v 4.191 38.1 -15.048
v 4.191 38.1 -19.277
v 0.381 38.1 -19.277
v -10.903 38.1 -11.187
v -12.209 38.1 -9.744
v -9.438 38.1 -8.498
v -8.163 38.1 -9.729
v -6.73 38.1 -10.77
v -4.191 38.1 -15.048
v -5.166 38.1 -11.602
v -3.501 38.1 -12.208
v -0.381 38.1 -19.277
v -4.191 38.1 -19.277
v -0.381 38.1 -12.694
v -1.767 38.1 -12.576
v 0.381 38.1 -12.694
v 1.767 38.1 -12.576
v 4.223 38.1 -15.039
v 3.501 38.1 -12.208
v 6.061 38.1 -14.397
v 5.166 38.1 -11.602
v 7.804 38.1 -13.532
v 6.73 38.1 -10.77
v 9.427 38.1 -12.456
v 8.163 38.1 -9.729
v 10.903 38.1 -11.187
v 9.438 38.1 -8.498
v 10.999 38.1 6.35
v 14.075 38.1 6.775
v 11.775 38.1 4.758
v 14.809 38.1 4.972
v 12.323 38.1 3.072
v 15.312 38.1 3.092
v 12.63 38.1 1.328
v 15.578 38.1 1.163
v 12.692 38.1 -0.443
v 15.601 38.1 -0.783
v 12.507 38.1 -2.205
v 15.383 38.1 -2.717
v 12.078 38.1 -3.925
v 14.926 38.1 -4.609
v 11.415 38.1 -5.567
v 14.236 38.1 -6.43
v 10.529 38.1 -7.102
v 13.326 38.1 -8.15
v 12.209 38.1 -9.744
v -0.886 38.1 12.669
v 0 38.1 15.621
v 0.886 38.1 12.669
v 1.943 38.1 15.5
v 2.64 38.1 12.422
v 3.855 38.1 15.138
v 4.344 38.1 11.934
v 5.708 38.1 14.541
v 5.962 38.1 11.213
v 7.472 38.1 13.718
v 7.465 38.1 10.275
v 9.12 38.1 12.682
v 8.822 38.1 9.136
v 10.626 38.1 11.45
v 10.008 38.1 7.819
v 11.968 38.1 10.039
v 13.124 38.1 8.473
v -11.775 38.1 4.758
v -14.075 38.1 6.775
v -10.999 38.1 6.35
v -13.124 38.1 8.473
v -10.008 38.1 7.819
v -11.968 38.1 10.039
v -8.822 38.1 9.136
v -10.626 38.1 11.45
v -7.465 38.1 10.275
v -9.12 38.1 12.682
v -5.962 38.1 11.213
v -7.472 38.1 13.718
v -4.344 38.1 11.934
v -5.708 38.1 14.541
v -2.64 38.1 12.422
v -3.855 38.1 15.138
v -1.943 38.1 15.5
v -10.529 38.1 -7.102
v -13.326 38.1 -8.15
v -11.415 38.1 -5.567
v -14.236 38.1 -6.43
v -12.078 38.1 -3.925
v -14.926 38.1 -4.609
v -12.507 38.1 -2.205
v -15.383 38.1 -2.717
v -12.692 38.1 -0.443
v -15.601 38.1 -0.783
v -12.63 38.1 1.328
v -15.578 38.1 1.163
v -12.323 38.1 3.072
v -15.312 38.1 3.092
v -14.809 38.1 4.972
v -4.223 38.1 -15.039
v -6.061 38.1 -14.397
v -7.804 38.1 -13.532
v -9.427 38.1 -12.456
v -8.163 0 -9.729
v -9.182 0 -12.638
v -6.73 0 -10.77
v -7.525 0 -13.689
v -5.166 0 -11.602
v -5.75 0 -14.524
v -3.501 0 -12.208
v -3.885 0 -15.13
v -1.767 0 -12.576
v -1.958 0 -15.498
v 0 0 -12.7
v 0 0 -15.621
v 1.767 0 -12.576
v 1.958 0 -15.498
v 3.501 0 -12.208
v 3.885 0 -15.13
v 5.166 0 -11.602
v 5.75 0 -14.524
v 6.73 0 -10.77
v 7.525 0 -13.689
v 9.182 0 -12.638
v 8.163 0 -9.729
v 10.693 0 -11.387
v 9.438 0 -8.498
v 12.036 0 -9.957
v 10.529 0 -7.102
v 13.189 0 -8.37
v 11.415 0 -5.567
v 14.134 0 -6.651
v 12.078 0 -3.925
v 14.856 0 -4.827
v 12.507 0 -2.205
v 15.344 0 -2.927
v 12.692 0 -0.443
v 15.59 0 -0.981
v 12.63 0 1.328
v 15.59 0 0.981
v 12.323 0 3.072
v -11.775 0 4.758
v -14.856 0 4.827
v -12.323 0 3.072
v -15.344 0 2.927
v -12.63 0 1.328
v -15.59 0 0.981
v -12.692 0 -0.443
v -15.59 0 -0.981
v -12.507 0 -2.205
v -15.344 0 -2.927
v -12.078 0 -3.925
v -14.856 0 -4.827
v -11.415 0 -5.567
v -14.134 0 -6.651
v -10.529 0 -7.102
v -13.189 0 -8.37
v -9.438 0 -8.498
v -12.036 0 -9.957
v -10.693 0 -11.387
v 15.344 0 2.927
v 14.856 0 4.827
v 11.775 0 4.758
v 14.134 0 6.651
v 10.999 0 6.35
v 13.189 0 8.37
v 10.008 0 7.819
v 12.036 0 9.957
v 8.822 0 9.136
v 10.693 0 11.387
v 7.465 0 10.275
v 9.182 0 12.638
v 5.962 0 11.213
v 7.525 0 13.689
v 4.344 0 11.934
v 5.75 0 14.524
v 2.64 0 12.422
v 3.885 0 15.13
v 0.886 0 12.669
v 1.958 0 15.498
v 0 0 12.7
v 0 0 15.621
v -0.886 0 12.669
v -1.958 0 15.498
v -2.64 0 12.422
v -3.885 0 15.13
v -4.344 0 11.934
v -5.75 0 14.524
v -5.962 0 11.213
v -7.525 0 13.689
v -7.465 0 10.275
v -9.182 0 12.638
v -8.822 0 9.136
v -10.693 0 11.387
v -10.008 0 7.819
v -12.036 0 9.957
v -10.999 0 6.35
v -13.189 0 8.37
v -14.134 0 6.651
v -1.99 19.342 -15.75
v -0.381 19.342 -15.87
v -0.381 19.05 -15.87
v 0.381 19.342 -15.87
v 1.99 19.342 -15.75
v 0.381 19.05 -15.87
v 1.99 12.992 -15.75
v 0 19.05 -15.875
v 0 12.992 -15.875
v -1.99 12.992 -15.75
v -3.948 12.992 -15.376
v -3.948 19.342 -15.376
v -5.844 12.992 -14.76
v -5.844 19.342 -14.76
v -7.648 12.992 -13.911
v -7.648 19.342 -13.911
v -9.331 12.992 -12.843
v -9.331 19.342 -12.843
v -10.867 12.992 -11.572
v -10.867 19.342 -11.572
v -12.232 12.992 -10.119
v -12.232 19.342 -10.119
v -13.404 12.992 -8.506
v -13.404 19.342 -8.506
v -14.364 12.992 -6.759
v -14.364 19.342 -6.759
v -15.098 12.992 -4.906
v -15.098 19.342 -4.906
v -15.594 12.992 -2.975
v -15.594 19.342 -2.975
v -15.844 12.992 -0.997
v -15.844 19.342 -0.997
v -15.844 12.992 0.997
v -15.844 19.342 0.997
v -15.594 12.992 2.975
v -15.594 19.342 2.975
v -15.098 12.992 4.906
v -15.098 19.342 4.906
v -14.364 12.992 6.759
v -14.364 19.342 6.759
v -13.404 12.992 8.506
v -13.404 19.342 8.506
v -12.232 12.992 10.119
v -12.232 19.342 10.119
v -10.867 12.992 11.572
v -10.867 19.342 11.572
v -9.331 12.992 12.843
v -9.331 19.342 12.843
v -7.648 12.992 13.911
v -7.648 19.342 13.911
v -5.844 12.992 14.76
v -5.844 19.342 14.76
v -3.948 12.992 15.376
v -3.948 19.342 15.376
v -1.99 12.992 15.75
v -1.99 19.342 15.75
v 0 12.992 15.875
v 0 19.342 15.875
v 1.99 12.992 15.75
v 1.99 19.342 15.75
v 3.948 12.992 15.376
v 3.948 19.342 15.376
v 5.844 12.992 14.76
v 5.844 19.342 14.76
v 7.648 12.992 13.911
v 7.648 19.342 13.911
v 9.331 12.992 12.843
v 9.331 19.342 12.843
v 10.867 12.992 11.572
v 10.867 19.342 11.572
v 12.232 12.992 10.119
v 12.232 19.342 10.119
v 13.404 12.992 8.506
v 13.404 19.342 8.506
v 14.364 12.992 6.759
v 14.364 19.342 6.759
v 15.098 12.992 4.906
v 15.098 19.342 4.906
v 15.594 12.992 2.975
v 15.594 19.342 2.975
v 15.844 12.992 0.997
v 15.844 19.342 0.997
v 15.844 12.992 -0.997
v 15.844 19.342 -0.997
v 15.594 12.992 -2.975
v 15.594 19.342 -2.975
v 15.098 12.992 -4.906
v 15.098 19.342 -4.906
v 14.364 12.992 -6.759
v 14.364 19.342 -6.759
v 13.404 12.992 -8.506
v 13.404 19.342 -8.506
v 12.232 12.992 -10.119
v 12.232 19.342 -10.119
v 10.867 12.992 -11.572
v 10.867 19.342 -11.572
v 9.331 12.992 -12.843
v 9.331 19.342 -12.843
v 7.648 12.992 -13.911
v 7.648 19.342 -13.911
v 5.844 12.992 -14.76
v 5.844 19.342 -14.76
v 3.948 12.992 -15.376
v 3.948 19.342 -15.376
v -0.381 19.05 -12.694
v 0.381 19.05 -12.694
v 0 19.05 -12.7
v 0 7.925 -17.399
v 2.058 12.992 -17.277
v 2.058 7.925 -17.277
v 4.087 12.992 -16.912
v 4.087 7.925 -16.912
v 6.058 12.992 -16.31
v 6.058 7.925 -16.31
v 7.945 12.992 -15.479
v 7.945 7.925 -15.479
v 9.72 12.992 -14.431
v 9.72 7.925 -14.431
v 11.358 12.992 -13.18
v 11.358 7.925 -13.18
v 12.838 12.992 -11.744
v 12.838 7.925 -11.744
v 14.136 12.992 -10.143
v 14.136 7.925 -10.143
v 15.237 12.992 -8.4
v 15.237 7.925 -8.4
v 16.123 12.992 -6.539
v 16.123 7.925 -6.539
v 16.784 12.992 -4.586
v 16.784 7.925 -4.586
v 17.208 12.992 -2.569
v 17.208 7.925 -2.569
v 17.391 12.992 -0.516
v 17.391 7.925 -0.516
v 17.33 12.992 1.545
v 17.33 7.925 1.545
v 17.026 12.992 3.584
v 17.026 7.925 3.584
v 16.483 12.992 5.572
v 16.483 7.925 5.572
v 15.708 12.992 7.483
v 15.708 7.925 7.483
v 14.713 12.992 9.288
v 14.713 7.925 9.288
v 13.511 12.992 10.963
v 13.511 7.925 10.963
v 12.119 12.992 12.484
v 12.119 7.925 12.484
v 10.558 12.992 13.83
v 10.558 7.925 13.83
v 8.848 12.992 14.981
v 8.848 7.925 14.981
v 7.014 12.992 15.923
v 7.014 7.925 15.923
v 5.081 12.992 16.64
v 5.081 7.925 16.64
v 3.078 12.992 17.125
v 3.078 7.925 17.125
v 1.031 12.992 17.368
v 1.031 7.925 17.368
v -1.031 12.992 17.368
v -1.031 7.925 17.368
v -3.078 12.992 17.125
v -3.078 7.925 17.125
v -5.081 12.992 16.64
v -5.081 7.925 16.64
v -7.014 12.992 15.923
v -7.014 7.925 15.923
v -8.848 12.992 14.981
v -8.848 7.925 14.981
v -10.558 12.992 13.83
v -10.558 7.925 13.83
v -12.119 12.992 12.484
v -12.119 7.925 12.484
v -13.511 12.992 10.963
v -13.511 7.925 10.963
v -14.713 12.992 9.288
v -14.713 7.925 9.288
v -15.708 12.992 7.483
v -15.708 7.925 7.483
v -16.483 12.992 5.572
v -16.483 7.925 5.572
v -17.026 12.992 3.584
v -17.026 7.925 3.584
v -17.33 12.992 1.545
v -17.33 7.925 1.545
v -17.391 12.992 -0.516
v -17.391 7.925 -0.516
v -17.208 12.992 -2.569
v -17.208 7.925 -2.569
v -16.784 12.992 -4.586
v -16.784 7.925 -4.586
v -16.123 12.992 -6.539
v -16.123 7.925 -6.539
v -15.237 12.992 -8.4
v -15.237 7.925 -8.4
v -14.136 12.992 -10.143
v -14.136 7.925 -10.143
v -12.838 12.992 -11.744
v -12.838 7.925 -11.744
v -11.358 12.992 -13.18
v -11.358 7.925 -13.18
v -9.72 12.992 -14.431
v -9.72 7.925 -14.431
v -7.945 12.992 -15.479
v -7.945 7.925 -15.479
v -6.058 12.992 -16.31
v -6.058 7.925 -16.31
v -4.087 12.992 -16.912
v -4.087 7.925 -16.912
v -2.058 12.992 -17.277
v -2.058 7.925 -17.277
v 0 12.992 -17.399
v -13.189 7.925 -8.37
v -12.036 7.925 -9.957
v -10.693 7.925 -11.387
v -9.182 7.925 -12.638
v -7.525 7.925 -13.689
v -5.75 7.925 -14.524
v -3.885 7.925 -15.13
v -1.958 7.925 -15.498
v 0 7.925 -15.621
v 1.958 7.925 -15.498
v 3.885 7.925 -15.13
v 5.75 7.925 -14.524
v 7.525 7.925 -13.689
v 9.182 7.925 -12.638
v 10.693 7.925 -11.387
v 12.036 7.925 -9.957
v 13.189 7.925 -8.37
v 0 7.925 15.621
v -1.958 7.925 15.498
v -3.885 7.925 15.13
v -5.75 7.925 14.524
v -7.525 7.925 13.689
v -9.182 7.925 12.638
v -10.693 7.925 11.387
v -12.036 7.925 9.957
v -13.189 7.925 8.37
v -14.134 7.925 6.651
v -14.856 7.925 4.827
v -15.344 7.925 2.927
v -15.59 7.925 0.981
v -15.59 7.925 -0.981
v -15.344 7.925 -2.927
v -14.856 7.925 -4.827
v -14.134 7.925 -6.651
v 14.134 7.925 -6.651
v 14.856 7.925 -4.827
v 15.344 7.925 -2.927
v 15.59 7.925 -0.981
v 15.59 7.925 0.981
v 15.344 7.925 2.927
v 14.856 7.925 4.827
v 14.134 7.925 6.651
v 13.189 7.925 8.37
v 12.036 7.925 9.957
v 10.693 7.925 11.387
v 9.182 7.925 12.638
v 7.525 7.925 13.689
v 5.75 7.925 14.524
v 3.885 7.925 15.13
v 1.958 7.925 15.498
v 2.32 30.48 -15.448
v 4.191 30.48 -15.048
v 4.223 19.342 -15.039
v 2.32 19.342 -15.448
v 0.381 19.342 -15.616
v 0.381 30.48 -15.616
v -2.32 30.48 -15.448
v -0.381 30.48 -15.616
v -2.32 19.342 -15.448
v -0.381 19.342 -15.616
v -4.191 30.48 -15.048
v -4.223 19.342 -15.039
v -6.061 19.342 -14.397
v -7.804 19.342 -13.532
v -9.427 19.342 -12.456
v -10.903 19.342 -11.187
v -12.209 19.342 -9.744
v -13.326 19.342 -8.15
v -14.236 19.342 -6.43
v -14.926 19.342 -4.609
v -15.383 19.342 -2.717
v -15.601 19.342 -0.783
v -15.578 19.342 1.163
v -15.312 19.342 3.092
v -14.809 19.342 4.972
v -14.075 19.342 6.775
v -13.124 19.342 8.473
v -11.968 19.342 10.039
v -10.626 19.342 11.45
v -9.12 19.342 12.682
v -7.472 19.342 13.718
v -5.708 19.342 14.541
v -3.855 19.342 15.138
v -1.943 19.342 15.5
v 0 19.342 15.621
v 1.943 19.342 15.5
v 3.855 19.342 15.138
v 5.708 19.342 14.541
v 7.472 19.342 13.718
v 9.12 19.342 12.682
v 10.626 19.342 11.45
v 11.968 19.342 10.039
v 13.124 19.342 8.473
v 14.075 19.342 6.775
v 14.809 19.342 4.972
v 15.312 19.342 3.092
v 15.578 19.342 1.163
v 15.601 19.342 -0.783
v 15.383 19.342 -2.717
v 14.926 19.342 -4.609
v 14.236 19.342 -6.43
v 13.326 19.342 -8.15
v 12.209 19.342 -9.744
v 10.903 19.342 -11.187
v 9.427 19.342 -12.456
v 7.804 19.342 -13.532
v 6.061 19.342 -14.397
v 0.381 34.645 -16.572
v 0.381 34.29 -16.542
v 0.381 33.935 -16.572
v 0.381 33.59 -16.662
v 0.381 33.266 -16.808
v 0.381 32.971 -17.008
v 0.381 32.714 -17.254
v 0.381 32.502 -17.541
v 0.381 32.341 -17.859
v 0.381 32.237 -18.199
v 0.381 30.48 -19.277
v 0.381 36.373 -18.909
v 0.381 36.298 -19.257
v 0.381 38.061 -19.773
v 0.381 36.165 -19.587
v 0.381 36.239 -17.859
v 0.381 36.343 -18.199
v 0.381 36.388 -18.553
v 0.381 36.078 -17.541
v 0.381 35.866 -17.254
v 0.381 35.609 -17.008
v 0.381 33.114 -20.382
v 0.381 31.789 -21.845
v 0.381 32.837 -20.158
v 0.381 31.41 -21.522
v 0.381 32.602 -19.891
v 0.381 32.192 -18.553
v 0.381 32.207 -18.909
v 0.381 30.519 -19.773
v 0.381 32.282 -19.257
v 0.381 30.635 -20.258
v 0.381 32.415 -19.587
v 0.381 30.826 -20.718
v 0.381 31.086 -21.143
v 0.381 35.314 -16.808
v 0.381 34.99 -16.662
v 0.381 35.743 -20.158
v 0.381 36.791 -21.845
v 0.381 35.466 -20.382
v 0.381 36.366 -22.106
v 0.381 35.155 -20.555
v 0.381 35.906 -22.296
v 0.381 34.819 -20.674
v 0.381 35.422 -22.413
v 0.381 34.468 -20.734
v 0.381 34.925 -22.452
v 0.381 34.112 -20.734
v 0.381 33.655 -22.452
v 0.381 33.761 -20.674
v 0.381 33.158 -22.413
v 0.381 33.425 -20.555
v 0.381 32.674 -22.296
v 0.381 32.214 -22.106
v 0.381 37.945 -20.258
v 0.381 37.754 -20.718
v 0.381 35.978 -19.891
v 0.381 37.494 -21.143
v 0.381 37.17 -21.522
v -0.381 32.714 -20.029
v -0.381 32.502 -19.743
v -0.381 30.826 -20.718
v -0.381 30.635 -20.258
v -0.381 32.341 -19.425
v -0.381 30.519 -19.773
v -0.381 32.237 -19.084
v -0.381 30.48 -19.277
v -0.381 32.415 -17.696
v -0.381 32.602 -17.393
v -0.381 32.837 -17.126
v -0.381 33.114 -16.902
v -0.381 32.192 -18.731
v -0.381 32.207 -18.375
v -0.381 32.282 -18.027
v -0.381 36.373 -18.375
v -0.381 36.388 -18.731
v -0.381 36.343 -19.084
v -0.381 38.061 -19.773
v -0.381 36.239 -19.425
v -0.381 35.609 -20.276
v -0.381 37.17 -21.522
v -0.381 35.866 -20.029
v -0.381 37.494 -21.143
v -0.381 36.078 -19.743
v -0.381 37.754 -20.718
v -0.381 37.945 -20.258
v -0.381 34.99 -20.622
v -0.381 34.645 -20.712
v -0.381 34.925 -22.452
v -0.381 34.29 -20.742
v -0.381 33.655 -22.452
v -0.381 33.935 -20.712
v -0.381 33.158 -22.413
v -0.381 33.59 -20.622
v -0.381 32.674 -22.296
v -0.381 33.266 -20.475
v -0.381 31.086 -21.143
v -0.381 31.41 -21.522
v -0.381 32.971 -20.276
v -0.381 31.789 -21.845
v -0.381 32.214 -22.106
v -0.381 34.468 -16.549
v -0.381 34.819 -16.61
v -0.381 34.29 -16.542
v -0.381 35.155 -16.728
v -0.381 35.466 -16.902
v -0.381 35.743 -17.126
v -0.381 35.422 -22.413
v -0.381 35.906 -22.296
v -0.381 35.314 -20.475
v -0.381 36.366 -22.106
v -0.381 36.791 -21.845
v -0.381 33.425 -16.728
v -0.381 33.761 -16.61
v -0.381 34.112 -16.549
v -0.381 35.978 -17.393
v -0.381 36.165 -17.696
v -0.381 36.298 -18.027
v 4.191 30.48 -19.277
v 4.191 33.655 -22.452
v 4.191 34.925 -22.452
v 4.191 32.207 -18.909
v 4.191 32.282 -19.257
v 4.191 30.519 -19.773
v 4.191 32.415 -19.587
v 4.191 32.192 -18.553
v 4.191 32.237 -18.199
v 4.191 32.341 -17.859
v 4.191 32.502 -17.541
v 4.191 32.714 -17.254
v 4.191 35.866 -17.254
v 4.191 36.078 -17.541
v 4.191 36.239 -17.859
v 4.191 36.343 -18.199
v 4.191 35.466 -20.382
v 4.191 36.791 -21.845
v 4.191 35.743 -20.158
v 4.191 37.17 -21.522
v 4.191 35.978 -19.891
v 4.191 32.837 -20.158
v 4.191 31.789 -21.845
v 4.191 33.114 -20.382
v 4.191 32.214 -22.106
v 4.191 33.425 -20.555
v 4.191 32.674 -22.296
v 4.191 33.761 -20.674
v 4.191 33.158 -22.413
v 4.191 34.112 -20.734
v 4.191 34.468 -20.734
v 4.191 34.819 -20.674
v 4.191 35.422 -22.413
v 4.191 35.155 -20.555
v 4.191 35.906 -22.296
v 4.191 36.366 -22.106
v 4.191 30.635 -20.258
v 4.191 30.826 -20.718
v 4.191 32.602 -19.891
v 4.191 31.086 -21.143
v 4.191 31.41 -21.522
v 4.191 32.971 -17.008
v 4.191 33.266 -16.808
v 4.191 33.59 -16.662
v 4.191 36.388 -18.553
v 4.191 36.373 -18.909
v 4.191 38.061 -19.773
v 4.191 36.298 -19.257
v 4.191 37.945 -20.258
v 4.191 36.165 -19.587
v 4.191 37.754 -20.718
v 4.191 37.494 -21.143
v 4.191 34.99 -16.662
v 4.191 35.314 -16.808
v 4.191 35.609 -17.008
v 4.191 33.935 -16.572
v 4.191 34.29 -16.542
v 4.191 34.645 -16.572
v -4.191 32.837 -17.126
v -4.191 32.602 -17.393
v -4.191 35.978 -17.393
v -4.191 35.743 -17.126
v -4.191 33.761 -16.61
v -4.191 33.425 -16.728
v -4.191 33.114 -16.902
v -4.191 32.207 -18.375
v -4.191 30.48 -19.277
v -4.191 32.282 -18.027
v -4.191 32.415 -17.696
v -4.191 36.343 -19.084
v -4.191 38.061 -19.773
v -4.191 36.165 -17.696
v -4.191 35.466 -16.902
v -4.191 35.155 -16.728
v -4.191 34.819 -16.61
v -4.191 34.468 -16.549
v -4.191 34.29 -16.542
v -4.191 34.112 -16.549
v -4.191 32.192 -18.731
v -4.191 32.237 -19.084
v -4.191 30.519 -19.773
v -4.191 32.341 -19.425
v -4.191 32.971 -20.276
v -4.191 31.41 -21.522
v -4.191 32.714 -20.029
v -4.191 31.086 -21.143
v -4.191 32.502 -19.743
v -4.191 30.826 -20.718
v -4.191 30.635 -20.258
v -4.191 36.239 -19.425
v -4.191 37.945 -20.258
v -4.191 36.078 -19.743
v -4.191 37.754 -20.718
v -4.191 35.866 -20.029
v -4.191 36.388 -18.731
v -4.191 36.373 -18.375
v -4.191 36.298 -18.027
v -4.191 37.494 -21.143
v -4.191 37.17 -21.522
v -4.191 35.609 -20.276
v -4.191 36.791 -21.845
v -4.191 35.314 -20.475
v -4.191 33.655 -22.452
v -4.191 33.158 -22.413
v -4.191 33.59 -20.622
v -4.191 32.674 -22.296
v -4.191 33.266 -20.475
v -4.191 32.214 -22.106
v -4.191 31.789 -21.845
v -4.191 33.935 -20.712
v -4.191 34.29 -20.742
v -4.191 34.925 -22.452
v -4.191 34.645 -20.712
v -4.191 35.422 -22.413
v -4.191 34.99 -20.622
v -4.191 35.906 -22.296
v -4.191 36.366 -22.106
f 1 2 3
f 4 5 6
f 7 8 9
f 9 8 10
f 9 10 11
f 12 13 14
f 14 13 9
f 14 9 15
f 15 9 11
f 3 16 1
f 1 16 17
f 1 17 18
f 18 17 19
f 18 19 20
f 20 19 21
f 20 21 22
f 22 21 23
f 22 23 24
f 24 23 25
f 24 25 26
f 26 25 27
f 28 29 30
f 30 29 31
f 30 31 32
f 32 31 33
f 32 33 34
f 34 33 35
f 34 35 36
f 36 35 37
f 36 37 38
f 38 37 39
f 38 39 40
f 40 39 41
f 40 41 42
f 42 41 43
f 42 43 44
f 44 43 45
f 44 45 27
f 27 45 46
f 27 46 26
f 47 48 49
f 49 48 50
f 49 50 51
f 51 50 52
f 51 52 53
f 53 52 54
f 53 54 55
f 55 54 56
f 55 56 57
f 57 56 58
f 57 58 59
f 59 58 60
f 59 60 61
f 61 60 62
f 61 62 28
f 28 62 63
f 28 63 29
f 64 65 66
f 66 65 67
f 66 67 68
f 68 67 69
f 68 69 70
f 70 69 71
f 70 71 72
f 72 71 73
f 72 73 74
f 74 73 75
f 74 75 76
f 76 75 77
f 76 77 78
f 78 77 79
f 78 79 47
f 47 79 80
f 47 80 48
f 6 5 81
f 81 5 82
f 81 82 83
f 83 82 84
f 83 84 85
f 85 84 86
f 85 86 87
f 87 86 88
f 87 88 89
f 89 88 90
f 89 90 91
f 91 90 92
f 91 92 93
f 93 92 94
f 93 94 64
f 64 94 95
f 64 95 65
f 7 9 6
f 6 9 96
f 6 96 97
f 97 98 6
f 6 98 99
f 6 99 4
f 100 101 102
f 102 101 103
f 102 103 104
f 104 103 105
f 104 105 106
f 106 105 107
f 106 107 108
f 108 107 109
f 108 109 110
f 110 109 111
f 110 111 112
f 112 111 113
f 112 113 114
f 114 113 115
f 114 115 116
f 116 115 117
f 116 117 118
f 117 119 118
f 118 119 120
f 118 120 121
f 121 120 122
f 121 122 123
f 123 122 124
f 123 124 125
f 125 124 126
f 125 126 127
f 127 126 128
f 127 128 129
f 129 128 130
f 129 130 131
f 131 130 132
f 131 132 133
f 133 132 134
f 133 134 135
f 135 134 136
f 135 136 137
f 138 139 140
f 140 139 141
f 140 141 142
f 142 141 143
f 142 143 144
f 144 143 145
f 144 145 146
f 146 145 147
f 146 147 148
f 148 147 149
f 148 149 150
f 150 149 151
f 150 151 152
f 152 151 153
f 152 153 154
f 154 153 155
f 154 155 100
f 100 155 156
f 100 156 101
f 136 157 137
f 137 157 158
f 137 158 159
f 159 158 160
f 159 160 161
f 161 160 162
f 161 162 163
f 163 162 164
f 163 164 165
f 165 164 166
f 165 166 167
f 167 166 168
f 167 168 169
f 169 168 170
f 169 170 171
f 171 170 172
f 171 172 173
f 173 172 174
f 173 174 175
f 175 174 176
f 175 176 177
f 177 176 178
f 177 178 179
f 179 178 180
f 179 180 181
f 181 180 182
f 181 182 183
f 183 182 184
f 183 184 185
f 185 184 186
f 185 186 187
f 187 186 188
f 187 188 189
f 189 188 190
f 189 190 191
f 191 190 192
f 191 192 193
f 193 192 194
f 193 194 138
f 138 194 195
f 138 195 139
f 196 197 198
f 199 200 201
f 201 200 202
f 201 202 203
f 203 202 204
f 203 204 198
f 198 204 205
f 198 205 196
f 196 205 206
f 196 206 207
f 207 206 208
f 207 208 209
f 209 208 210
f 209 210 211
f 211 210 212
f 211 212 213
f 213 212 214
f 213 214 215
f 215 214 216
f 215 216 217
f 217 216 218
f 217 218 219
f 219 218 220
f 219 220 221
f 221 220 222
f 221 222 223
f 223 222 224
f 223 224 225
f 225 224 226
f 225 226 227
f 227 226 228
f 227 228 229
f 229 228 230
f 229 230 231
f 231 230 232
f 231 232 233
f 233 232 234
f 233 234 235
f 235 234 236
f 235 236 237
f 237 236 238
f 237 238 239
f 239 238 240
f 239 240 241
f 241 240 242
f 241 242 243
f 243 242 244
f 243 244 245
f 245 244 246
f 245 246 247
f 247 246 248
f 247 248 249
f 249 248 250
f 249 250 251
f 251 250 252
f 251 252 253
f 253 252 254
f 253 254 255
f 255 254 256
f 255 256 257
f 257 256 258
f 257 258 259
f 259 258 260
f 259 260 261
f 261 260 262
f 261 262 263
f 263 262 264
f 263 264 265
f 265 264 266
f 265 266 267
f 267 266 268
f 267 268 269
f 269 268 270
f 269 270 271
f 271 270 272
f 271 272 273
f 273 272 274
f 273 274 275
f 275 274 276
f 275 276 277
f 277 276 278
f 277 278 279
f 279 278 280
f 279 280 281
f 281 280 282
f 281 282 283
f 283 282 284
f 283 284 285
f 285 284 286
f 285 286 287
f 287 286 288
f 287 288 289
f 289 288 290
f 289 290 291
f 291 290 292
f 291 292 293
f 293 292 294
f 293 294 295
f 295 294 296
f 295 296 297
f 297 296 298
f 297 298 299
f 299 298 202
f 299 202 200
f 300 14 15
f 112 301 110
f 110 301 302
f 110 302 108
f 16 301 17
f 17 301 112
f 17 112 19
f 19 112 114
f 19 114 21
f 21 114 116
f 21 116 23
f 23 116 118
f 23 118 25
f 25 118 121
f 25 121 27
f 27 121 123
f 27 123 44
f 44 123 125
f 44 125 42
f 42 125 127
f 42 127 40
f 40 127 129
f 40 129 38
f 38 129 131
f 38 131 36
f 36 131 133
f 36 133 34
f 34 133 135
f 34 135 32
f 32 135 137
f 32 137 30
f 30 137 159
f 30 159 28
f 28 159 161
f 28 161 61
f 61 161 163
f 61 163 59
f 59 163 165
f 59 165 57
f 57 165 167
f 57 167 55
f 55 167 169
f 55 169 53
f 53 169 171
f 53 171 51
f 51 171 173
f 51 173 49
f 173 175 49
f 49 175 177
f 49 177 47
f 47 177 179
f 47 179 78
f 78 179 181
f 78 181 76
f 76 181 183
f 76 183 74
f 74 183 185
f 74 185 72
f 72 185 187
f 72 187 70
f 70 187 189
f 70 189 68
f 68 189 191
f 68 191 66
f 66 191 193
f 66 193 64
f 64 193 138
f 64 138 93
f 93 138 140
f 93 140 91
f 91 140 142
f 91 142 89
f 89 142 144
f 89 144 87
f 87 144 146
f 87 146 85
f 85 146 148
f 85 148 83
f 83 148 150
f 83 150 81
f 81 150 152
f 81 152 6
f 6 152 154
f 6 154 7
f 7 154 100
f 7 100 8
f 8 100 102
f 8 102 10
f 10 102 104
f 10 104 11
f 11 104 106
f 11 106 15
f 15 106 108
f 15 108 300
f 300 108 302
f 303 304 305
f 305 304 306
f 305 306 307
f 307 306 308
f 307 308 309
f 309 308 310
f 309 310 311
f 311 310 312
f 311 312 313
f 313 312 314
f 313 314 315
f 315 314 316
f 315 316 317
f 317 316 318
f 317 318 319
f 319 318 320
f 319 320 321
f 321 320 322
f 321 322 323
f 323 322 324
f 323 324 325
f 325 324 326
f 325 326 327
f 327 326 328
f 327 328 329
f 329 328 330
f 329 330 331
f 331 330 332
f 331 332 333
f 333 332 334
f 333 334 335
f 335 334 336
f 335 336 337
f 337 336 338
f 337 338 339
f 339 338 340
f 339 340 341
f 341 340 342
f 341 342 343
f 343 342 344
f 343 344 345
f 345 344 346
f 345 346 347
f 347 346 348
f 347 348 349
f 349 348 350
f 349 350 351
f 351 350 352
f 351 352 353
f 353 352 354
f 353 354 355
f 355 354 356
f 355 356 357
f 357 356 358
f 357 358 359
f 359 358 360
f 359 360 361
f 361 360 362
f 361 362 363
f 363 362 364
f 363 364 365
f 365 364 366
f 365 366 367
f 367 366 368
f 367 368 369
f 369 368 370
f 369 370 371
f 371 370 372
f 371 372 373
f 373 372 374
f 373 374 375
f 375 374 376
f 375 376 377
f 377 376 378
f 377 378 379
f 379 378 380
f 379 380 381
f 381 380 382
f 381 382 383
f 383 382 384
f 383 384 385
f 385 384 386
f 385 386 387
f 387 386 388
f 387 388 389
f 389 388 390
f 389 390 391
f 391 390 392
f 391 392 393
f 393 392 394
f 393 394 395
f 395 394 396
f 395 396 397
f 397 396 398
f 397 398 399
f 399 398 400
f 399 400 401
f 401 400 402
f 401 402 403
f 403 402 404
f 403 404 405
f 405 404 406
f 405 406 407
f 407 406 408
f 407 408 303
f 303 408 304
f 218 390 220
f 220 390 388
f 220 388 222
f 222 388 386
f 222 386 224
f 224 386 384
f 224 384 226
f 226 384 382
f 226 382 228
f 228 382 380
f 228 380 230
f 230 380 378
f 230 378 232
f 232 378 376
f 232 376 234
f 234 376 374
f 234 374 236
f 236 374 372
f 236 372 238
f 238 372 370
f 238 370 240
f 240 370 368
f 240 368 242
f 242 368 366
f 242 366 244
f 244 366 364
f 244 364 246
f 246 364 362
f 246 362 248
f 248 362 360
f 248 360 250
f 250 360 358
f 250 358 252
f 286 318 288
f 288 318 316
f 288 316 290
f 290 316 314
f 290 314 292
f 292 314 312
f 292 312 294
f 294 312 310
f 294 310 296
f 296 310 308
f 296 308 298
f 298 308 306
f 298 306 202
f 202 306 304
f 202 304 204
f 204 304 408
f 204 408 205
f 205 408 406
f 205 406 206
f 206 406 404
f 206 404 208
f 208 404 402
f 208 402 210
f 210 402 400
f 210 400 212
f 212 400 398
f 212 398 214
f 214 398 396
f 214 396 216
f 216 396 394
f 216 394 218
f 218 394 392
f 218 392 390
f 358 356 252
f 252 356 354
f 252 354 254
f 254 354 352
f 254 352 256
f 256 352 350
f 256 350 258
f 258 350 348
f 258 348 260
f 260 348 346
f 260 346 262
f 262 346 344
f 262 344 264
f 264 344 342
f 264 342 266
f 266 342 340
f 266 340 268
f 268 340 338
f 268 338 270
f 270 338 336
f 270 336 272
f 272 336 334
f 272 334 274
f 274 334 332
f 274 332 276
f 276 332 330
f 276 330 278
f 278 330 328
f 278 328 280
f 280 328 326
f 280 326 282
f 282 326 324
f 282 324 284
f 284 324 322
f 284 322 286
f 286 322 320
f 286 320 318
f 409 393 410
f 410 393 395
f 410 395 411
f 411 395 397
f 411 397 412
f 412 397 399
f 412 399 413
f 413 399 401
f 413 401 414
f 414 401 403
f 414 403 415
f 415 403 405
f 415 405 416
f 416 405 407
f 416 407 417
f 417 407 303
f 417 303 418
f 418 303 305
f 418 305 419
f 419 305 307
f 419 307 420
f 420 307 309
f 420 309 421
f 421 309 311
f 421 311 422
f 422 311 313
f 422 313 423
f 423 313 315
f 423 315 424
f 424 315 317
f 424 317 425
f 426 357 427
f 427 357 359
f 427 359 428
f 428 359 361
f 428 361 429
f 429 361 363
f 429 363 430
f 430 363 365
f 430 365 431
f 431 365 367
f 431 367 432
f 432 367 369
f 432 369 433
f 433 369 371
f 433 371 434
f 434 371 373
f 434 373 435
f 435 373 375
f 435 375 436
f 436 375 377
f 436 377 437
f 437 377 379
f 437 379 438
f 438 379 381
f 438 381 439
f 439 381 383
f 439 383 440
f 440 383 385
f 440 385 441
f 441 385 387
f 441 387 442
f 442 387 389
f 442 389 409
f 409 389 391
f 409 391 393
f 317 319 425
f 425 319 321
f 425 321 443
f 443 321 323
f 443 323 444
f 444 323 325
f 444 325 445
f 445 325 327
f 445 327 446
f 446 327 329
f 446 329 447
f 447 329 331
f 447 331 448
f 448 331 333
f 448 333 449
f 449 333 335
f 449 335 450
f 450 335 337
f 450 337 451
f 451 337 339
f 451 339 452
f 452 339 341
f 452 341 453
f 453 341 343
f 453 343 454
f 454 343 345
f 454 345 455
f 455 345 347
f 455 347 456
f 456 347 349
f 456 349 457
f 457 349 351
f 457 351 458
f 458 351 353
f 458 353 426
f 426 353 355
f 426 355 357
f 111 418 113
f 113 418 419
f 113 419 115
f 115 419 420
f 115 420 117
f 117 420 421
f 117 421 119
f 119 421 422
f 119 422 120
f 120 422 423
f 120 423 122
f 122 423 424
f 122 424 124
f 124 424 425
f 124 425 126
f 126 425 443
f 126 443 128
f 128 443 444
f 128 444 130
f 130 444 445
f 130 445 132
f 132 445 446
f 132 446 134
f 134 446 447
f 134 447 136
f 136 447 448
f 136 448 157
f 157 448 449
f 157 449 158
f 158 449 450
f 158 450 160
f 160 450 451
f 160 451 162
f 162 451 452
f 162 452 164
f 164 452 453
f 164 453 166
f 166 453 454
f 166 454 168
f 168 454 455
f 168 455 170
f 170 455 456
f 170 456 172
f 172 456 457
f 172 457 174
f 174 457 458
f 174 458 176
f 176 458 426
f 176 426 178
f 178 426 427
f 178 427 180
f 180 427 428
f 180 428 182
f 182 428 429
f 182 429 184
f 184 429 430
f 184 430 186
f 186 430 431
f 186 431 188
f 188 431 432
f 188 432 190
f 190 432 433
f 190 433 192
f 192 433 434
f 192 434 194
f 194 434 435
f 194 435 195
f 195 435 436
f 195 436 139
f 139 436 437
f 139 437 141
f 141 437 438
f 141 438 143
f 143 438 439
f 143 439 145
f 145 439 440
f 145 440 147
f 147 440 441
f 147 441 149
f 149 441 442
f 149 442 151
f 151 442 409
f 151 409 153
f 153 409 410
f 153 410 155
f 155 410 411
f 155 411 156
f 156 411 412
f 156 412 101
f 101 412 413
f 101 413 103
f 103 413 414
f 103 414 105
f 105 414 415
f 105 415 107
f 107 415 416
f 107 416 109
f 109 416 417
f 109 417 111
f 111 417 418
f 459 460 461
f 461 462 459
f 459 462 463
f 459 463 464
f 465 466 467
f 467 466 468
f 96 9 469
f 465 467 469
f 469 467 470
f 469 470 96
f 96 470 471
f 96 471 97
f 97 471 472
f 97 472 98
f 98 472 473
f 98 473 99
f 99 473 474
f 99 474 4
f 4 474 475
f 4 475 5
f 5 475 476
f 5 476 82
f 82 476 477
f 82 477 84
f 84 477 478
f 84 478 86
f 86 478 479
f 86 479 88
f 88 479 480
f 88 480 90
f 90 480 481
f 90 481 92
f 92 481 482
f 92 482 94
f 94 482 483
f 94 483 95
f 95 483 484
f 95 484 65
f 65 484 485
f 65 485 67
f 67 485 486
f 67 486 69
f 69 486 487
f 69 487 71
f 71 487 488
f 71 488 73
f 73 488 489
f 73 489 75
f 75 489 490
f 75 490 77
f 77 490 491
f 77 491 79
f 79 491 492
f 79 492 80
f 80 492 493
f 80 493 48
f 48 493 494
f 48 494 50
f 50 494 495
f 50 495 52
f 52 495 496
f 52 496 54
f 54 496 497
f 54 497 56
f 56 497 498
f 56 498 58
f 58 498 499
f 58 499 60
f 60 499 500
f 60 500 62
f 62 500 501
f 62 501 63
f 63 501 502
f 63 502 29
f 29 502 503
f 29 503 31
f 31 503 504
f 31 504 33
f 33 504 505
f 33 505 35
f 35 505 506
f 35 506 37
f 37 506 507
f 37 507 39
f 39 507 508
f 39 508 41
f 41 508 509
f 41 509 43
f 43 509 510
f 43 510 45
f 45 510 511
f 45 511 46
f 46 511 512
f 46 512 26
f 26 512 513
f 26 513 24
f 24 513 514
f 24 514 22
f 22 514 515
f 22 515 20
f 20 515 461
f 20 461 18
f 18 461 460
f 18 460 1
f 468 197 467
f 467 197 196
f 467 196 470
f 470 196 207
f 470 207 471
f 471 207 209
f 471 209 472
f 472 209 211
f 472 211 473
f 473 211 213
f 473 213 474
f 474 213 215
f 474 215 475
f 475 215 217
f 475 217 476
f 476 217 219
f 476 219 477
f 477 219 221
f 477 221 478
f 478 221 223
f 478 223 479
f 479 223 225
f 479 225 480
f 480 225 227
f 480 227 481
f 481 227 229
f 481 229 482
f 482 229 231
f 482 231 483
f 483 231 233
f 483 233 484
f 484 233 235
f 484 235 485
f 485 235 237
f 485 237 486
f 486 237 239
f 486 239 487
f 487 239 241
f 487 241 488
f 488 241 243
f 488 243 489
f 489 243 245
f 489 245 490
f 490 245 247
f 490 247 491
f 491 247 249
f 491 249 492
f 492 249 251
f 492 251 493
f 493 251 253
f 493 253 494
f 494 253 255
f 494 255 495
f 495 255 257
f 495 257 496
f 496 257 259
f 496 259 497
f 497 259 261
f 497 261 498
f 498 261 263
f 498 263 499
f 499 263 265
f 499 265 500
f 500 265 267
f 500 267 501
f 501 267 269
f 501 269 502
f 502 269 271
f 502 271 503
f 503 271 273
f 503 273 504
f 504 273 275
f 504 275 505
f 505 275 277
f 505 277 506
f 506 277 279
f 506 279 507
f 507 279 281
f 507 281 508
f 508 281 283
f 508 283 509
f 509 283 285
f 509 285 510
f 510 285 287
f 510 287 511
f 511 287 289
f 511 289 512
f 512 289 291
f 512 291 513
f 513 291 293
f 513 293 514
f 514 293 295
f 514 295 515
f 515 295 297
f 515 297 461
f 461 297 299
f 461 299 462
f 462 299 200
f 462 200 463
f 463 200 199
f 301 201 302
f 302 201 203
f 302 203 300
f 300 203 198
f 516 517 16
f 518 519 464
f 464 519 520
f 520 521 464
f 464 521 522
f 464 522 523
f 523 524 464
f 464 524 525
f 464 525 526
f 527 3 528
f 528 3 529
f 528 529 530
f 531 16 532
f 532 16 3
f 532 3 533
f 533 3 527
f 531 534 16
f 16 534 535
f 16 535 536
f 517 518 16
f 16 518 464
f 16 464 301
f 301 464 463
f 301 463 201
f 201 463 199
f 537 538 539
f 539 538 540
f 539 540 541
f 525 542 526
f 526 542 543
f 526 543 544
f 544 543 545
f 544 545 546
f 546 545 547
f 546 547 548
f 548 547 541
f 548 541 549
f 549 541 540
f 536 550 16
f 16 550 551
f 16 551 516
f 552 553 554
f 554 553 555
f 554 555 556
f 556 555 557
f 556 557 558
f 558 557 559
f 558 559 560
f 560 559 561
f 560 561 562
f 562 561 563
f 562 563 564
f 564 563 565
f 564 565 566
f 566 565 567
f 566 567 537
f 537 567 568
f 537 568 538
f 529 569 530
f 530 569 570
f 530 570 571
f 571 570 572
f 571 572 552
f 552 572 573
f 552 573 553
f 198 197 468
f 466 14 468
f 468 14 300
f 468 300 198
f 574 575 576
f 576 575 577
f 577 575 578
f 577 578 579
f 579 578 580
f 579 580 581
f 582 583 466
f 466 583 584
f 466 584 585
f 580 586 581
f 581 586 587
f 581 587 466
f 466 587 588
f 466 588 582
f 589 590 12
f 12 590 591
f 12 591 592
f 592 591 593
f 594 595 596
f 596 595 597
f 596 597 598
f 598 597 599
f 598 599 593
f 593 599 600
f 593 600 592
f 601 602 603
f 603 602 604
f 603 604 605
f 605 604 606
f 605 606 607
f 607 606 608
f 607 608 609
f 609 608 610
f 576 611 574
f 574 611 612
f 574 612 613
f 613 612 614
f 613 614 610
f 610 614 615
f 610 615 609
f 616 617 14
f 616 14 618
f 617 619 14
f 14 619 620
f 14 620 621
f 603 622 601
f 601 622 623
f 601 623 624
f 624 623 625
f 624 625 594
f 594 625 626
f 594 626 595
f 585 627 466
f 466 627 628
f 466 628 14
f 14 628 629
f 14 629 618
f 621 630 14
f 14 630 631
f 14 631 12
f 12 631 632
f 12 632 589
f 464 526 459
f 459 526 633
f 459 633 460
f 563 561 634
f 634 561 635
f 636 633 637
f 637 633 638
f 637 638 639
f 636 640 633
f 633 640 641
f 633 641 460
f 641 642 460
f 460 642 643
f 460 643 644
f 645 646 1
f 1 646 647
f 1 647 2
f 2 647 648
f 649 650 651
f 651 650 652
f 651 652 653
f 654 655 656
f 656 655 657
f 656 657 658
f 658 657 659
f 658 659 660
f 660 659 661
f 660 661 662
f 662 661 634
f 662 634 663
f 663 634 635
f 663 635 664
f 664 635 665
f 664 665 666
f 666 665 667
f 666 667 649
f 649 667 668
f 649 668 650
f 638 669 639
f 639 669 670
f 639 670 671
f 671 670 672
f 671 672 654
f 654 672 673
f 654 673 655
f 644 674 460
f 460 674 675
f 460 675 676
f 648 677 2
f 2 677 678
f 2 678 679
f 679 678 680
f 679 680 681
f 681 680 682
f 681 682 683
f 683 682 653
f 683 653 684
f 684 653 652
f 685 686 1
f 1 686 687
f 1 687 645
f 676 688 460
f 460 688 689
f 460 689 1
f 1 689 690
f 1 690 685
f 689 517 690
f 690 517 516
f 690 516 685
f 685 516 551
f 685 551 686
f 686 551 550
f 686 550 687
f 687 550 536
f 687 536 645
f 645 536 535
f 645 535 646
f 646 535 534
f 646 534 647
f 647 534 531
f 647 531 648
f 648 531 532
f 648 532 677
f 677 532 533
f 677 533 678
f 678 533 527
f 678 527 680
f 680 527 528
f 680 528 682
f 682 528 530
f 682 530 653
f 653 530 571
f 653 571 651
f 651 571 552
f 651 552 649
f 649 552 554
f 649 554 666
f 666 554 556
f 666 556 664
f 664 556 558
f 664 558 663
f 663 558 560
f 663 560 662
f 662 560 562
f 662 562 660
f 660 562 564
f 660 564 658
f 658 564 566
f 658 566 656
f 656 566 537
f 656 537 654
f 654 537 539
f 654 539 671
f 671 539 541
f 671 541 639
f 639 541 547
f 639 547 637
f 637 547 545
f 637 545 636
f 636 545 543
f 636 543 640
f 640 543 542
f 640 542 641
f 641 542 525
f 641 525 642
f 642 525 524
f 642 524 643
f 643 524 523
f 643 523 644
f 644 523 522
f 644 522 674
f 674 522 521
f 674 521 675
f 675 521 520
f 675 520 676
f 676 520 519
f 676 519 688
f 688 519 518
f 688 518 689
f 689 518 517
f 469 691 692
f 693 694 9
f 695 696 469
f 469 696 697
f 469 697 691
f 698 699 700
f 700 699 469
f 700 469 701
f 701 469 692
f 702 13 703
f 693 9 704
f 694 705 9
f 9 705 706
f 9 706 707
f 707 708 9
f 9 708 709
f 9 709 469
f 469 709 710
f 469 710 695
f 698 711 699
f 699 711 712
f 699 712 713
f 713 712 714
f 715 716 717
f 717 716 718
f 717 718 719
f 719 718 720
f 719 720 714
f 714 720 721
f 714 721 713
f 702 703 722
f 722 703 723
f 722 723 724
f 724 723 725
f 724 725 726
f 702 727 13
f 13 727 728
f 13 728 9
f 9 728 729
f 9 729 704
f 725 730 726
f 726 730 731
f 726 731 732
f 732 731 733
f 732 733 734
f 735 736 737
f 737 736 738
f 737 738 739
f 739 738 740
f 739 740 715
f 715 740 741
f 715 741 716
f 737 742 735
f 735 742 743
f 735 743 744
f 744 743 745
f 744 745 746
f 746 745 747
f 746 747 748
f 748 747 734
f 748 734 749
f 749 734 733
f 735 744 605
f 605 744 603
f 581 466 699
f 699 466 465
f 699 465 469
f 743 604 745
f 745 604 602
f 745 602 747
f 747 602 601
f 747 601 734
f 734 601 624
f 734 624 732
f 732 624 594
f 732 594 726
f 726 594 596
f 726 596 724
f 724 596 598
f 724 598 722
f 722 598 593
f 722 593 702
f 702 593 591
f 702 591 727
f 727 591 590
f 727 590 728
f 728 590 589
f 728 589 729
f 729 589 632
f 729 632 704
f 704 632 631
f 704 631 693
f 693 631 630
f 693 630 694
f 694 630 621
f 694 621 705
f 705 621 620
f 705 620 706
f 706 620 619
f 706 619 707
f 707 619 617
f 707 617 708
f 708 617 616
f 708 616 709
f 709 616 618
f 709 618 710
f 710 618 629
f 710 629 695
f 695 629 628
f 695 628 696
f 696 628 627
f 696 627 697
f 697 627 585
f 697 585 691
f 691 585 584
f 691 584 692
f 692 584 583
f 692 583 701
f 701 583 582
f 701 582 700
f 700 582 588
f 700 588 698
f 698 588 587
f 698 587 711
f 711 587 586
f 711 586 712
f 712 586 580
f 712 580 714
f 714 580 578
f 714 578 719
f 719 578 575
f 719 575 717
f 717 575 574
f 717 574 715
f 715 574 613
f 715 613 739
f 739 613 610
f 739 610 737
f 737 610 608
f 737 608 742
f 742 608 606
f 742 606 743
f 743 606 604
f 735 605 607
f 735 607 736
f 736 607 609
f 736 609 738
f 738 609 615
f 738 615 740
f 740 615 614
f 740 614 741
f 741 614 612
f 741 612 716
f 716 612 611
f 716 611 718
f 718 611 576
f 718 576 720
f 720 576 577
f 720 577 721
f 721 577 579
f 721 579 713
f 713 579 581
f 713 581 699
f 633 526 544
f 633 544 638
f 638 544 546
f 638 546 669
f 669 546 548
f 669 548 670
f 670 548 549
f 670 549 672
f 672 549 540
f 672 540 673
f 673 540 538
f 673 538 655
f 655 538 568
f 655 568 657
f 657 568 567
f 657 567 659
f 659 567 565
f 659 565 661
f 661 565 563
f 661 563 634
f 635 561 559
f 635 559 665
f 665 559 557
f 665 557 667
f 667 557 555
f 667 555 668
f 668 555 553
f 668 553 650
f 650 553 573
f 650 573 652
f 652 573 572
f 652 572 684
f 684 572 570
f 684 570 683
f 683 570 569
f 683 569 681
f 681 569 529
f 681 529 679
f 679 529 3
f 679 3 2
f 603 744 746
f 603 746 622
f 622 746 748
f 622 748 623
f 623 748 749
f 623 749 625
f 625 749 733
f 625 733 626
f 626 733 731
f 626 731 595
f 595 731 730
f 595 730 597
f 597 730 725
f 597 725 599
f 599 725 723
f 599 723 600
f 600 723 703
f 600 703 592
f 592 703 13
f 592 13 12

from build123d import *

# Parameters (mm, degrees)
SKETCH1_R           = 15.875
SKETCH1_R_2         = 12.7
BOSS_EXTRUDE1_DEPTH = 38.1
SKETCH2_R           = 17.399
SKETCH2_R_2         = 15.875
BOSS_EXTRUDE2_DEPTH = 5.0673
SKETCH3_R           = 15.875
SKETCH3_R_2         = 15.621
CUT_EXTRUDE1_DEPTH  = 7.9248
CUT_EXTRUDE2_START  = -19.3421
SKETCH3_2_R         = 15.875
SKETCH3_2_R_2       = 15.621
CUT_EXTRUDE2_DEPTH  = 18.7579
SKETCH4_W           = 0.762
SKETCH4_H           = 4.704716286
CUT_EXTRUDE3_DEPTH  = 19.05
SKETCH5_W           = 9.757521138
SKETCH5_H           = 7.62
SKETCH5_R           = 2.1
BOSS_EXTRUDE3_DEPTH = 3.81
FILLET1_R           = 3.175


with BuildPart() as part:
    # Sketch1 → Boss-Extrude1 (new body)
    with BuildSketch(Plane(origin=(0, 0, 0), x_dir=(1, 0, 0), z_dir=(0, 1, 0))):
        with Locations(Location((0, 0, 0), (0, 0, 90))):
            Circle(SKETCH1_R)
        with Locations(Location((0, 0, 0), (0, 0, 90))):
            Circle(SKETCH1_R_2, mode=Mode.SUBTRACT)
    extrude(amount=BOSS_EXTRUDE1_DEPTH)

    # Sketch2 → Boss-Extrude2 (add)
    with BuildSketch(Plane(origin=(0, 7.9248, 0), x_dir=(-1, 0, 0), z_dir=(0, -1, 0))):
        with Locations(Location((0, 0, 0), (0, 0, 90))):
            Circle(SKETCH2_R)
        with Locations(Location((0, 0, 0), (0, 0, 90))):
            Circle(SKETCH2_R_2, mode=Mode.SUBTRACT)
    extrude(amount=-BOSS_EXTRUDE2_DEPTH)

    # Sketch3 → Cut-Extrude1 (cut)
    with BuildSketch(Plane.XZ):
        with Locations(Location((0, 0, 0), (0, 0, 270))):
            Circle(SKETCH3_R)
        with Locations(Location((0, 0, 0), (0, 0, 270))):
            Circle(SKETCH3_R_2, mode=Mode.SUBTRACT)
    extrude(amount=-CUT_EXTRUDE1_DEPTH, mode=Mode.SUBTRACT)

    # Sketch3<2> → Cut-Extrude2 (cut)
    with BuildSketch(Plane.XZ.offset(CUT_EXTRUDE2_START)):
        with Locations(Location((0, 0, 0), (0, 0, 270))):
            Circle(SKETCH3_2_R)
        with Locations(Location((0, 0, 0), (0, 0, 270))):
            Circle(SKETCH3_2_R_2, mode=Mode.SUBTRACT)
    extrude(amount=-CUT_EXTRUDE2_DEPTH, mode=Mode.SUBTRACT)

    # Sketch4 → Cut-Extrude3 (cut)
    with BuildSketch(Plane(origin=(0, 38.1, 0), x_dir=(1, 0, 0), z_dir=(0, 1, 0))):
        with Locations((0, 15.046641857)):
            Rectangle(SKETCH4_W, SKETCH4_H)
    extrude(amount=-CUT_EXTRUDE3_DEPTH, mode=Mode.SUBTRACT)

    # Sketch5 → Boss-Extrude3 (add)
    with BuildSketch(Plane.ZY.offset(-0.381)):
        with Locations((-17.573044283, 34.29)):
            Rectangle(SKETCH5_W, SKETCH5_H)
        with Locations((-18.641804852, 34.29)):
            Circle(SKETCH5_R, mode=Mode.SUBTRACT)
    boss_extrude3 = extrude(amount=-BOSS_EXTRUDE3_DEPTH)

    # Mirror1: Boss-Extrude3 across plane
    add(boss_extrude3.mirror(Plane(origin=(0, 0, 0), x_dir=(0, 0, 1), z_dir=(1, 0, 0))))

    # Fillet1
    fillet1_edges = [part.edges().sort_by_distance(p)[0] for p in [
        (-2.286, 30.48, -22.451804852),
        (2.286, 30.48, -22.451804852),
        (2.286, 38.1, -22.451804852),
        (-2.286, 38.1, -22.451804852),
    ]]
    fillet(fillet1_edges, radius=FILLET1_R)


solid = part.part
